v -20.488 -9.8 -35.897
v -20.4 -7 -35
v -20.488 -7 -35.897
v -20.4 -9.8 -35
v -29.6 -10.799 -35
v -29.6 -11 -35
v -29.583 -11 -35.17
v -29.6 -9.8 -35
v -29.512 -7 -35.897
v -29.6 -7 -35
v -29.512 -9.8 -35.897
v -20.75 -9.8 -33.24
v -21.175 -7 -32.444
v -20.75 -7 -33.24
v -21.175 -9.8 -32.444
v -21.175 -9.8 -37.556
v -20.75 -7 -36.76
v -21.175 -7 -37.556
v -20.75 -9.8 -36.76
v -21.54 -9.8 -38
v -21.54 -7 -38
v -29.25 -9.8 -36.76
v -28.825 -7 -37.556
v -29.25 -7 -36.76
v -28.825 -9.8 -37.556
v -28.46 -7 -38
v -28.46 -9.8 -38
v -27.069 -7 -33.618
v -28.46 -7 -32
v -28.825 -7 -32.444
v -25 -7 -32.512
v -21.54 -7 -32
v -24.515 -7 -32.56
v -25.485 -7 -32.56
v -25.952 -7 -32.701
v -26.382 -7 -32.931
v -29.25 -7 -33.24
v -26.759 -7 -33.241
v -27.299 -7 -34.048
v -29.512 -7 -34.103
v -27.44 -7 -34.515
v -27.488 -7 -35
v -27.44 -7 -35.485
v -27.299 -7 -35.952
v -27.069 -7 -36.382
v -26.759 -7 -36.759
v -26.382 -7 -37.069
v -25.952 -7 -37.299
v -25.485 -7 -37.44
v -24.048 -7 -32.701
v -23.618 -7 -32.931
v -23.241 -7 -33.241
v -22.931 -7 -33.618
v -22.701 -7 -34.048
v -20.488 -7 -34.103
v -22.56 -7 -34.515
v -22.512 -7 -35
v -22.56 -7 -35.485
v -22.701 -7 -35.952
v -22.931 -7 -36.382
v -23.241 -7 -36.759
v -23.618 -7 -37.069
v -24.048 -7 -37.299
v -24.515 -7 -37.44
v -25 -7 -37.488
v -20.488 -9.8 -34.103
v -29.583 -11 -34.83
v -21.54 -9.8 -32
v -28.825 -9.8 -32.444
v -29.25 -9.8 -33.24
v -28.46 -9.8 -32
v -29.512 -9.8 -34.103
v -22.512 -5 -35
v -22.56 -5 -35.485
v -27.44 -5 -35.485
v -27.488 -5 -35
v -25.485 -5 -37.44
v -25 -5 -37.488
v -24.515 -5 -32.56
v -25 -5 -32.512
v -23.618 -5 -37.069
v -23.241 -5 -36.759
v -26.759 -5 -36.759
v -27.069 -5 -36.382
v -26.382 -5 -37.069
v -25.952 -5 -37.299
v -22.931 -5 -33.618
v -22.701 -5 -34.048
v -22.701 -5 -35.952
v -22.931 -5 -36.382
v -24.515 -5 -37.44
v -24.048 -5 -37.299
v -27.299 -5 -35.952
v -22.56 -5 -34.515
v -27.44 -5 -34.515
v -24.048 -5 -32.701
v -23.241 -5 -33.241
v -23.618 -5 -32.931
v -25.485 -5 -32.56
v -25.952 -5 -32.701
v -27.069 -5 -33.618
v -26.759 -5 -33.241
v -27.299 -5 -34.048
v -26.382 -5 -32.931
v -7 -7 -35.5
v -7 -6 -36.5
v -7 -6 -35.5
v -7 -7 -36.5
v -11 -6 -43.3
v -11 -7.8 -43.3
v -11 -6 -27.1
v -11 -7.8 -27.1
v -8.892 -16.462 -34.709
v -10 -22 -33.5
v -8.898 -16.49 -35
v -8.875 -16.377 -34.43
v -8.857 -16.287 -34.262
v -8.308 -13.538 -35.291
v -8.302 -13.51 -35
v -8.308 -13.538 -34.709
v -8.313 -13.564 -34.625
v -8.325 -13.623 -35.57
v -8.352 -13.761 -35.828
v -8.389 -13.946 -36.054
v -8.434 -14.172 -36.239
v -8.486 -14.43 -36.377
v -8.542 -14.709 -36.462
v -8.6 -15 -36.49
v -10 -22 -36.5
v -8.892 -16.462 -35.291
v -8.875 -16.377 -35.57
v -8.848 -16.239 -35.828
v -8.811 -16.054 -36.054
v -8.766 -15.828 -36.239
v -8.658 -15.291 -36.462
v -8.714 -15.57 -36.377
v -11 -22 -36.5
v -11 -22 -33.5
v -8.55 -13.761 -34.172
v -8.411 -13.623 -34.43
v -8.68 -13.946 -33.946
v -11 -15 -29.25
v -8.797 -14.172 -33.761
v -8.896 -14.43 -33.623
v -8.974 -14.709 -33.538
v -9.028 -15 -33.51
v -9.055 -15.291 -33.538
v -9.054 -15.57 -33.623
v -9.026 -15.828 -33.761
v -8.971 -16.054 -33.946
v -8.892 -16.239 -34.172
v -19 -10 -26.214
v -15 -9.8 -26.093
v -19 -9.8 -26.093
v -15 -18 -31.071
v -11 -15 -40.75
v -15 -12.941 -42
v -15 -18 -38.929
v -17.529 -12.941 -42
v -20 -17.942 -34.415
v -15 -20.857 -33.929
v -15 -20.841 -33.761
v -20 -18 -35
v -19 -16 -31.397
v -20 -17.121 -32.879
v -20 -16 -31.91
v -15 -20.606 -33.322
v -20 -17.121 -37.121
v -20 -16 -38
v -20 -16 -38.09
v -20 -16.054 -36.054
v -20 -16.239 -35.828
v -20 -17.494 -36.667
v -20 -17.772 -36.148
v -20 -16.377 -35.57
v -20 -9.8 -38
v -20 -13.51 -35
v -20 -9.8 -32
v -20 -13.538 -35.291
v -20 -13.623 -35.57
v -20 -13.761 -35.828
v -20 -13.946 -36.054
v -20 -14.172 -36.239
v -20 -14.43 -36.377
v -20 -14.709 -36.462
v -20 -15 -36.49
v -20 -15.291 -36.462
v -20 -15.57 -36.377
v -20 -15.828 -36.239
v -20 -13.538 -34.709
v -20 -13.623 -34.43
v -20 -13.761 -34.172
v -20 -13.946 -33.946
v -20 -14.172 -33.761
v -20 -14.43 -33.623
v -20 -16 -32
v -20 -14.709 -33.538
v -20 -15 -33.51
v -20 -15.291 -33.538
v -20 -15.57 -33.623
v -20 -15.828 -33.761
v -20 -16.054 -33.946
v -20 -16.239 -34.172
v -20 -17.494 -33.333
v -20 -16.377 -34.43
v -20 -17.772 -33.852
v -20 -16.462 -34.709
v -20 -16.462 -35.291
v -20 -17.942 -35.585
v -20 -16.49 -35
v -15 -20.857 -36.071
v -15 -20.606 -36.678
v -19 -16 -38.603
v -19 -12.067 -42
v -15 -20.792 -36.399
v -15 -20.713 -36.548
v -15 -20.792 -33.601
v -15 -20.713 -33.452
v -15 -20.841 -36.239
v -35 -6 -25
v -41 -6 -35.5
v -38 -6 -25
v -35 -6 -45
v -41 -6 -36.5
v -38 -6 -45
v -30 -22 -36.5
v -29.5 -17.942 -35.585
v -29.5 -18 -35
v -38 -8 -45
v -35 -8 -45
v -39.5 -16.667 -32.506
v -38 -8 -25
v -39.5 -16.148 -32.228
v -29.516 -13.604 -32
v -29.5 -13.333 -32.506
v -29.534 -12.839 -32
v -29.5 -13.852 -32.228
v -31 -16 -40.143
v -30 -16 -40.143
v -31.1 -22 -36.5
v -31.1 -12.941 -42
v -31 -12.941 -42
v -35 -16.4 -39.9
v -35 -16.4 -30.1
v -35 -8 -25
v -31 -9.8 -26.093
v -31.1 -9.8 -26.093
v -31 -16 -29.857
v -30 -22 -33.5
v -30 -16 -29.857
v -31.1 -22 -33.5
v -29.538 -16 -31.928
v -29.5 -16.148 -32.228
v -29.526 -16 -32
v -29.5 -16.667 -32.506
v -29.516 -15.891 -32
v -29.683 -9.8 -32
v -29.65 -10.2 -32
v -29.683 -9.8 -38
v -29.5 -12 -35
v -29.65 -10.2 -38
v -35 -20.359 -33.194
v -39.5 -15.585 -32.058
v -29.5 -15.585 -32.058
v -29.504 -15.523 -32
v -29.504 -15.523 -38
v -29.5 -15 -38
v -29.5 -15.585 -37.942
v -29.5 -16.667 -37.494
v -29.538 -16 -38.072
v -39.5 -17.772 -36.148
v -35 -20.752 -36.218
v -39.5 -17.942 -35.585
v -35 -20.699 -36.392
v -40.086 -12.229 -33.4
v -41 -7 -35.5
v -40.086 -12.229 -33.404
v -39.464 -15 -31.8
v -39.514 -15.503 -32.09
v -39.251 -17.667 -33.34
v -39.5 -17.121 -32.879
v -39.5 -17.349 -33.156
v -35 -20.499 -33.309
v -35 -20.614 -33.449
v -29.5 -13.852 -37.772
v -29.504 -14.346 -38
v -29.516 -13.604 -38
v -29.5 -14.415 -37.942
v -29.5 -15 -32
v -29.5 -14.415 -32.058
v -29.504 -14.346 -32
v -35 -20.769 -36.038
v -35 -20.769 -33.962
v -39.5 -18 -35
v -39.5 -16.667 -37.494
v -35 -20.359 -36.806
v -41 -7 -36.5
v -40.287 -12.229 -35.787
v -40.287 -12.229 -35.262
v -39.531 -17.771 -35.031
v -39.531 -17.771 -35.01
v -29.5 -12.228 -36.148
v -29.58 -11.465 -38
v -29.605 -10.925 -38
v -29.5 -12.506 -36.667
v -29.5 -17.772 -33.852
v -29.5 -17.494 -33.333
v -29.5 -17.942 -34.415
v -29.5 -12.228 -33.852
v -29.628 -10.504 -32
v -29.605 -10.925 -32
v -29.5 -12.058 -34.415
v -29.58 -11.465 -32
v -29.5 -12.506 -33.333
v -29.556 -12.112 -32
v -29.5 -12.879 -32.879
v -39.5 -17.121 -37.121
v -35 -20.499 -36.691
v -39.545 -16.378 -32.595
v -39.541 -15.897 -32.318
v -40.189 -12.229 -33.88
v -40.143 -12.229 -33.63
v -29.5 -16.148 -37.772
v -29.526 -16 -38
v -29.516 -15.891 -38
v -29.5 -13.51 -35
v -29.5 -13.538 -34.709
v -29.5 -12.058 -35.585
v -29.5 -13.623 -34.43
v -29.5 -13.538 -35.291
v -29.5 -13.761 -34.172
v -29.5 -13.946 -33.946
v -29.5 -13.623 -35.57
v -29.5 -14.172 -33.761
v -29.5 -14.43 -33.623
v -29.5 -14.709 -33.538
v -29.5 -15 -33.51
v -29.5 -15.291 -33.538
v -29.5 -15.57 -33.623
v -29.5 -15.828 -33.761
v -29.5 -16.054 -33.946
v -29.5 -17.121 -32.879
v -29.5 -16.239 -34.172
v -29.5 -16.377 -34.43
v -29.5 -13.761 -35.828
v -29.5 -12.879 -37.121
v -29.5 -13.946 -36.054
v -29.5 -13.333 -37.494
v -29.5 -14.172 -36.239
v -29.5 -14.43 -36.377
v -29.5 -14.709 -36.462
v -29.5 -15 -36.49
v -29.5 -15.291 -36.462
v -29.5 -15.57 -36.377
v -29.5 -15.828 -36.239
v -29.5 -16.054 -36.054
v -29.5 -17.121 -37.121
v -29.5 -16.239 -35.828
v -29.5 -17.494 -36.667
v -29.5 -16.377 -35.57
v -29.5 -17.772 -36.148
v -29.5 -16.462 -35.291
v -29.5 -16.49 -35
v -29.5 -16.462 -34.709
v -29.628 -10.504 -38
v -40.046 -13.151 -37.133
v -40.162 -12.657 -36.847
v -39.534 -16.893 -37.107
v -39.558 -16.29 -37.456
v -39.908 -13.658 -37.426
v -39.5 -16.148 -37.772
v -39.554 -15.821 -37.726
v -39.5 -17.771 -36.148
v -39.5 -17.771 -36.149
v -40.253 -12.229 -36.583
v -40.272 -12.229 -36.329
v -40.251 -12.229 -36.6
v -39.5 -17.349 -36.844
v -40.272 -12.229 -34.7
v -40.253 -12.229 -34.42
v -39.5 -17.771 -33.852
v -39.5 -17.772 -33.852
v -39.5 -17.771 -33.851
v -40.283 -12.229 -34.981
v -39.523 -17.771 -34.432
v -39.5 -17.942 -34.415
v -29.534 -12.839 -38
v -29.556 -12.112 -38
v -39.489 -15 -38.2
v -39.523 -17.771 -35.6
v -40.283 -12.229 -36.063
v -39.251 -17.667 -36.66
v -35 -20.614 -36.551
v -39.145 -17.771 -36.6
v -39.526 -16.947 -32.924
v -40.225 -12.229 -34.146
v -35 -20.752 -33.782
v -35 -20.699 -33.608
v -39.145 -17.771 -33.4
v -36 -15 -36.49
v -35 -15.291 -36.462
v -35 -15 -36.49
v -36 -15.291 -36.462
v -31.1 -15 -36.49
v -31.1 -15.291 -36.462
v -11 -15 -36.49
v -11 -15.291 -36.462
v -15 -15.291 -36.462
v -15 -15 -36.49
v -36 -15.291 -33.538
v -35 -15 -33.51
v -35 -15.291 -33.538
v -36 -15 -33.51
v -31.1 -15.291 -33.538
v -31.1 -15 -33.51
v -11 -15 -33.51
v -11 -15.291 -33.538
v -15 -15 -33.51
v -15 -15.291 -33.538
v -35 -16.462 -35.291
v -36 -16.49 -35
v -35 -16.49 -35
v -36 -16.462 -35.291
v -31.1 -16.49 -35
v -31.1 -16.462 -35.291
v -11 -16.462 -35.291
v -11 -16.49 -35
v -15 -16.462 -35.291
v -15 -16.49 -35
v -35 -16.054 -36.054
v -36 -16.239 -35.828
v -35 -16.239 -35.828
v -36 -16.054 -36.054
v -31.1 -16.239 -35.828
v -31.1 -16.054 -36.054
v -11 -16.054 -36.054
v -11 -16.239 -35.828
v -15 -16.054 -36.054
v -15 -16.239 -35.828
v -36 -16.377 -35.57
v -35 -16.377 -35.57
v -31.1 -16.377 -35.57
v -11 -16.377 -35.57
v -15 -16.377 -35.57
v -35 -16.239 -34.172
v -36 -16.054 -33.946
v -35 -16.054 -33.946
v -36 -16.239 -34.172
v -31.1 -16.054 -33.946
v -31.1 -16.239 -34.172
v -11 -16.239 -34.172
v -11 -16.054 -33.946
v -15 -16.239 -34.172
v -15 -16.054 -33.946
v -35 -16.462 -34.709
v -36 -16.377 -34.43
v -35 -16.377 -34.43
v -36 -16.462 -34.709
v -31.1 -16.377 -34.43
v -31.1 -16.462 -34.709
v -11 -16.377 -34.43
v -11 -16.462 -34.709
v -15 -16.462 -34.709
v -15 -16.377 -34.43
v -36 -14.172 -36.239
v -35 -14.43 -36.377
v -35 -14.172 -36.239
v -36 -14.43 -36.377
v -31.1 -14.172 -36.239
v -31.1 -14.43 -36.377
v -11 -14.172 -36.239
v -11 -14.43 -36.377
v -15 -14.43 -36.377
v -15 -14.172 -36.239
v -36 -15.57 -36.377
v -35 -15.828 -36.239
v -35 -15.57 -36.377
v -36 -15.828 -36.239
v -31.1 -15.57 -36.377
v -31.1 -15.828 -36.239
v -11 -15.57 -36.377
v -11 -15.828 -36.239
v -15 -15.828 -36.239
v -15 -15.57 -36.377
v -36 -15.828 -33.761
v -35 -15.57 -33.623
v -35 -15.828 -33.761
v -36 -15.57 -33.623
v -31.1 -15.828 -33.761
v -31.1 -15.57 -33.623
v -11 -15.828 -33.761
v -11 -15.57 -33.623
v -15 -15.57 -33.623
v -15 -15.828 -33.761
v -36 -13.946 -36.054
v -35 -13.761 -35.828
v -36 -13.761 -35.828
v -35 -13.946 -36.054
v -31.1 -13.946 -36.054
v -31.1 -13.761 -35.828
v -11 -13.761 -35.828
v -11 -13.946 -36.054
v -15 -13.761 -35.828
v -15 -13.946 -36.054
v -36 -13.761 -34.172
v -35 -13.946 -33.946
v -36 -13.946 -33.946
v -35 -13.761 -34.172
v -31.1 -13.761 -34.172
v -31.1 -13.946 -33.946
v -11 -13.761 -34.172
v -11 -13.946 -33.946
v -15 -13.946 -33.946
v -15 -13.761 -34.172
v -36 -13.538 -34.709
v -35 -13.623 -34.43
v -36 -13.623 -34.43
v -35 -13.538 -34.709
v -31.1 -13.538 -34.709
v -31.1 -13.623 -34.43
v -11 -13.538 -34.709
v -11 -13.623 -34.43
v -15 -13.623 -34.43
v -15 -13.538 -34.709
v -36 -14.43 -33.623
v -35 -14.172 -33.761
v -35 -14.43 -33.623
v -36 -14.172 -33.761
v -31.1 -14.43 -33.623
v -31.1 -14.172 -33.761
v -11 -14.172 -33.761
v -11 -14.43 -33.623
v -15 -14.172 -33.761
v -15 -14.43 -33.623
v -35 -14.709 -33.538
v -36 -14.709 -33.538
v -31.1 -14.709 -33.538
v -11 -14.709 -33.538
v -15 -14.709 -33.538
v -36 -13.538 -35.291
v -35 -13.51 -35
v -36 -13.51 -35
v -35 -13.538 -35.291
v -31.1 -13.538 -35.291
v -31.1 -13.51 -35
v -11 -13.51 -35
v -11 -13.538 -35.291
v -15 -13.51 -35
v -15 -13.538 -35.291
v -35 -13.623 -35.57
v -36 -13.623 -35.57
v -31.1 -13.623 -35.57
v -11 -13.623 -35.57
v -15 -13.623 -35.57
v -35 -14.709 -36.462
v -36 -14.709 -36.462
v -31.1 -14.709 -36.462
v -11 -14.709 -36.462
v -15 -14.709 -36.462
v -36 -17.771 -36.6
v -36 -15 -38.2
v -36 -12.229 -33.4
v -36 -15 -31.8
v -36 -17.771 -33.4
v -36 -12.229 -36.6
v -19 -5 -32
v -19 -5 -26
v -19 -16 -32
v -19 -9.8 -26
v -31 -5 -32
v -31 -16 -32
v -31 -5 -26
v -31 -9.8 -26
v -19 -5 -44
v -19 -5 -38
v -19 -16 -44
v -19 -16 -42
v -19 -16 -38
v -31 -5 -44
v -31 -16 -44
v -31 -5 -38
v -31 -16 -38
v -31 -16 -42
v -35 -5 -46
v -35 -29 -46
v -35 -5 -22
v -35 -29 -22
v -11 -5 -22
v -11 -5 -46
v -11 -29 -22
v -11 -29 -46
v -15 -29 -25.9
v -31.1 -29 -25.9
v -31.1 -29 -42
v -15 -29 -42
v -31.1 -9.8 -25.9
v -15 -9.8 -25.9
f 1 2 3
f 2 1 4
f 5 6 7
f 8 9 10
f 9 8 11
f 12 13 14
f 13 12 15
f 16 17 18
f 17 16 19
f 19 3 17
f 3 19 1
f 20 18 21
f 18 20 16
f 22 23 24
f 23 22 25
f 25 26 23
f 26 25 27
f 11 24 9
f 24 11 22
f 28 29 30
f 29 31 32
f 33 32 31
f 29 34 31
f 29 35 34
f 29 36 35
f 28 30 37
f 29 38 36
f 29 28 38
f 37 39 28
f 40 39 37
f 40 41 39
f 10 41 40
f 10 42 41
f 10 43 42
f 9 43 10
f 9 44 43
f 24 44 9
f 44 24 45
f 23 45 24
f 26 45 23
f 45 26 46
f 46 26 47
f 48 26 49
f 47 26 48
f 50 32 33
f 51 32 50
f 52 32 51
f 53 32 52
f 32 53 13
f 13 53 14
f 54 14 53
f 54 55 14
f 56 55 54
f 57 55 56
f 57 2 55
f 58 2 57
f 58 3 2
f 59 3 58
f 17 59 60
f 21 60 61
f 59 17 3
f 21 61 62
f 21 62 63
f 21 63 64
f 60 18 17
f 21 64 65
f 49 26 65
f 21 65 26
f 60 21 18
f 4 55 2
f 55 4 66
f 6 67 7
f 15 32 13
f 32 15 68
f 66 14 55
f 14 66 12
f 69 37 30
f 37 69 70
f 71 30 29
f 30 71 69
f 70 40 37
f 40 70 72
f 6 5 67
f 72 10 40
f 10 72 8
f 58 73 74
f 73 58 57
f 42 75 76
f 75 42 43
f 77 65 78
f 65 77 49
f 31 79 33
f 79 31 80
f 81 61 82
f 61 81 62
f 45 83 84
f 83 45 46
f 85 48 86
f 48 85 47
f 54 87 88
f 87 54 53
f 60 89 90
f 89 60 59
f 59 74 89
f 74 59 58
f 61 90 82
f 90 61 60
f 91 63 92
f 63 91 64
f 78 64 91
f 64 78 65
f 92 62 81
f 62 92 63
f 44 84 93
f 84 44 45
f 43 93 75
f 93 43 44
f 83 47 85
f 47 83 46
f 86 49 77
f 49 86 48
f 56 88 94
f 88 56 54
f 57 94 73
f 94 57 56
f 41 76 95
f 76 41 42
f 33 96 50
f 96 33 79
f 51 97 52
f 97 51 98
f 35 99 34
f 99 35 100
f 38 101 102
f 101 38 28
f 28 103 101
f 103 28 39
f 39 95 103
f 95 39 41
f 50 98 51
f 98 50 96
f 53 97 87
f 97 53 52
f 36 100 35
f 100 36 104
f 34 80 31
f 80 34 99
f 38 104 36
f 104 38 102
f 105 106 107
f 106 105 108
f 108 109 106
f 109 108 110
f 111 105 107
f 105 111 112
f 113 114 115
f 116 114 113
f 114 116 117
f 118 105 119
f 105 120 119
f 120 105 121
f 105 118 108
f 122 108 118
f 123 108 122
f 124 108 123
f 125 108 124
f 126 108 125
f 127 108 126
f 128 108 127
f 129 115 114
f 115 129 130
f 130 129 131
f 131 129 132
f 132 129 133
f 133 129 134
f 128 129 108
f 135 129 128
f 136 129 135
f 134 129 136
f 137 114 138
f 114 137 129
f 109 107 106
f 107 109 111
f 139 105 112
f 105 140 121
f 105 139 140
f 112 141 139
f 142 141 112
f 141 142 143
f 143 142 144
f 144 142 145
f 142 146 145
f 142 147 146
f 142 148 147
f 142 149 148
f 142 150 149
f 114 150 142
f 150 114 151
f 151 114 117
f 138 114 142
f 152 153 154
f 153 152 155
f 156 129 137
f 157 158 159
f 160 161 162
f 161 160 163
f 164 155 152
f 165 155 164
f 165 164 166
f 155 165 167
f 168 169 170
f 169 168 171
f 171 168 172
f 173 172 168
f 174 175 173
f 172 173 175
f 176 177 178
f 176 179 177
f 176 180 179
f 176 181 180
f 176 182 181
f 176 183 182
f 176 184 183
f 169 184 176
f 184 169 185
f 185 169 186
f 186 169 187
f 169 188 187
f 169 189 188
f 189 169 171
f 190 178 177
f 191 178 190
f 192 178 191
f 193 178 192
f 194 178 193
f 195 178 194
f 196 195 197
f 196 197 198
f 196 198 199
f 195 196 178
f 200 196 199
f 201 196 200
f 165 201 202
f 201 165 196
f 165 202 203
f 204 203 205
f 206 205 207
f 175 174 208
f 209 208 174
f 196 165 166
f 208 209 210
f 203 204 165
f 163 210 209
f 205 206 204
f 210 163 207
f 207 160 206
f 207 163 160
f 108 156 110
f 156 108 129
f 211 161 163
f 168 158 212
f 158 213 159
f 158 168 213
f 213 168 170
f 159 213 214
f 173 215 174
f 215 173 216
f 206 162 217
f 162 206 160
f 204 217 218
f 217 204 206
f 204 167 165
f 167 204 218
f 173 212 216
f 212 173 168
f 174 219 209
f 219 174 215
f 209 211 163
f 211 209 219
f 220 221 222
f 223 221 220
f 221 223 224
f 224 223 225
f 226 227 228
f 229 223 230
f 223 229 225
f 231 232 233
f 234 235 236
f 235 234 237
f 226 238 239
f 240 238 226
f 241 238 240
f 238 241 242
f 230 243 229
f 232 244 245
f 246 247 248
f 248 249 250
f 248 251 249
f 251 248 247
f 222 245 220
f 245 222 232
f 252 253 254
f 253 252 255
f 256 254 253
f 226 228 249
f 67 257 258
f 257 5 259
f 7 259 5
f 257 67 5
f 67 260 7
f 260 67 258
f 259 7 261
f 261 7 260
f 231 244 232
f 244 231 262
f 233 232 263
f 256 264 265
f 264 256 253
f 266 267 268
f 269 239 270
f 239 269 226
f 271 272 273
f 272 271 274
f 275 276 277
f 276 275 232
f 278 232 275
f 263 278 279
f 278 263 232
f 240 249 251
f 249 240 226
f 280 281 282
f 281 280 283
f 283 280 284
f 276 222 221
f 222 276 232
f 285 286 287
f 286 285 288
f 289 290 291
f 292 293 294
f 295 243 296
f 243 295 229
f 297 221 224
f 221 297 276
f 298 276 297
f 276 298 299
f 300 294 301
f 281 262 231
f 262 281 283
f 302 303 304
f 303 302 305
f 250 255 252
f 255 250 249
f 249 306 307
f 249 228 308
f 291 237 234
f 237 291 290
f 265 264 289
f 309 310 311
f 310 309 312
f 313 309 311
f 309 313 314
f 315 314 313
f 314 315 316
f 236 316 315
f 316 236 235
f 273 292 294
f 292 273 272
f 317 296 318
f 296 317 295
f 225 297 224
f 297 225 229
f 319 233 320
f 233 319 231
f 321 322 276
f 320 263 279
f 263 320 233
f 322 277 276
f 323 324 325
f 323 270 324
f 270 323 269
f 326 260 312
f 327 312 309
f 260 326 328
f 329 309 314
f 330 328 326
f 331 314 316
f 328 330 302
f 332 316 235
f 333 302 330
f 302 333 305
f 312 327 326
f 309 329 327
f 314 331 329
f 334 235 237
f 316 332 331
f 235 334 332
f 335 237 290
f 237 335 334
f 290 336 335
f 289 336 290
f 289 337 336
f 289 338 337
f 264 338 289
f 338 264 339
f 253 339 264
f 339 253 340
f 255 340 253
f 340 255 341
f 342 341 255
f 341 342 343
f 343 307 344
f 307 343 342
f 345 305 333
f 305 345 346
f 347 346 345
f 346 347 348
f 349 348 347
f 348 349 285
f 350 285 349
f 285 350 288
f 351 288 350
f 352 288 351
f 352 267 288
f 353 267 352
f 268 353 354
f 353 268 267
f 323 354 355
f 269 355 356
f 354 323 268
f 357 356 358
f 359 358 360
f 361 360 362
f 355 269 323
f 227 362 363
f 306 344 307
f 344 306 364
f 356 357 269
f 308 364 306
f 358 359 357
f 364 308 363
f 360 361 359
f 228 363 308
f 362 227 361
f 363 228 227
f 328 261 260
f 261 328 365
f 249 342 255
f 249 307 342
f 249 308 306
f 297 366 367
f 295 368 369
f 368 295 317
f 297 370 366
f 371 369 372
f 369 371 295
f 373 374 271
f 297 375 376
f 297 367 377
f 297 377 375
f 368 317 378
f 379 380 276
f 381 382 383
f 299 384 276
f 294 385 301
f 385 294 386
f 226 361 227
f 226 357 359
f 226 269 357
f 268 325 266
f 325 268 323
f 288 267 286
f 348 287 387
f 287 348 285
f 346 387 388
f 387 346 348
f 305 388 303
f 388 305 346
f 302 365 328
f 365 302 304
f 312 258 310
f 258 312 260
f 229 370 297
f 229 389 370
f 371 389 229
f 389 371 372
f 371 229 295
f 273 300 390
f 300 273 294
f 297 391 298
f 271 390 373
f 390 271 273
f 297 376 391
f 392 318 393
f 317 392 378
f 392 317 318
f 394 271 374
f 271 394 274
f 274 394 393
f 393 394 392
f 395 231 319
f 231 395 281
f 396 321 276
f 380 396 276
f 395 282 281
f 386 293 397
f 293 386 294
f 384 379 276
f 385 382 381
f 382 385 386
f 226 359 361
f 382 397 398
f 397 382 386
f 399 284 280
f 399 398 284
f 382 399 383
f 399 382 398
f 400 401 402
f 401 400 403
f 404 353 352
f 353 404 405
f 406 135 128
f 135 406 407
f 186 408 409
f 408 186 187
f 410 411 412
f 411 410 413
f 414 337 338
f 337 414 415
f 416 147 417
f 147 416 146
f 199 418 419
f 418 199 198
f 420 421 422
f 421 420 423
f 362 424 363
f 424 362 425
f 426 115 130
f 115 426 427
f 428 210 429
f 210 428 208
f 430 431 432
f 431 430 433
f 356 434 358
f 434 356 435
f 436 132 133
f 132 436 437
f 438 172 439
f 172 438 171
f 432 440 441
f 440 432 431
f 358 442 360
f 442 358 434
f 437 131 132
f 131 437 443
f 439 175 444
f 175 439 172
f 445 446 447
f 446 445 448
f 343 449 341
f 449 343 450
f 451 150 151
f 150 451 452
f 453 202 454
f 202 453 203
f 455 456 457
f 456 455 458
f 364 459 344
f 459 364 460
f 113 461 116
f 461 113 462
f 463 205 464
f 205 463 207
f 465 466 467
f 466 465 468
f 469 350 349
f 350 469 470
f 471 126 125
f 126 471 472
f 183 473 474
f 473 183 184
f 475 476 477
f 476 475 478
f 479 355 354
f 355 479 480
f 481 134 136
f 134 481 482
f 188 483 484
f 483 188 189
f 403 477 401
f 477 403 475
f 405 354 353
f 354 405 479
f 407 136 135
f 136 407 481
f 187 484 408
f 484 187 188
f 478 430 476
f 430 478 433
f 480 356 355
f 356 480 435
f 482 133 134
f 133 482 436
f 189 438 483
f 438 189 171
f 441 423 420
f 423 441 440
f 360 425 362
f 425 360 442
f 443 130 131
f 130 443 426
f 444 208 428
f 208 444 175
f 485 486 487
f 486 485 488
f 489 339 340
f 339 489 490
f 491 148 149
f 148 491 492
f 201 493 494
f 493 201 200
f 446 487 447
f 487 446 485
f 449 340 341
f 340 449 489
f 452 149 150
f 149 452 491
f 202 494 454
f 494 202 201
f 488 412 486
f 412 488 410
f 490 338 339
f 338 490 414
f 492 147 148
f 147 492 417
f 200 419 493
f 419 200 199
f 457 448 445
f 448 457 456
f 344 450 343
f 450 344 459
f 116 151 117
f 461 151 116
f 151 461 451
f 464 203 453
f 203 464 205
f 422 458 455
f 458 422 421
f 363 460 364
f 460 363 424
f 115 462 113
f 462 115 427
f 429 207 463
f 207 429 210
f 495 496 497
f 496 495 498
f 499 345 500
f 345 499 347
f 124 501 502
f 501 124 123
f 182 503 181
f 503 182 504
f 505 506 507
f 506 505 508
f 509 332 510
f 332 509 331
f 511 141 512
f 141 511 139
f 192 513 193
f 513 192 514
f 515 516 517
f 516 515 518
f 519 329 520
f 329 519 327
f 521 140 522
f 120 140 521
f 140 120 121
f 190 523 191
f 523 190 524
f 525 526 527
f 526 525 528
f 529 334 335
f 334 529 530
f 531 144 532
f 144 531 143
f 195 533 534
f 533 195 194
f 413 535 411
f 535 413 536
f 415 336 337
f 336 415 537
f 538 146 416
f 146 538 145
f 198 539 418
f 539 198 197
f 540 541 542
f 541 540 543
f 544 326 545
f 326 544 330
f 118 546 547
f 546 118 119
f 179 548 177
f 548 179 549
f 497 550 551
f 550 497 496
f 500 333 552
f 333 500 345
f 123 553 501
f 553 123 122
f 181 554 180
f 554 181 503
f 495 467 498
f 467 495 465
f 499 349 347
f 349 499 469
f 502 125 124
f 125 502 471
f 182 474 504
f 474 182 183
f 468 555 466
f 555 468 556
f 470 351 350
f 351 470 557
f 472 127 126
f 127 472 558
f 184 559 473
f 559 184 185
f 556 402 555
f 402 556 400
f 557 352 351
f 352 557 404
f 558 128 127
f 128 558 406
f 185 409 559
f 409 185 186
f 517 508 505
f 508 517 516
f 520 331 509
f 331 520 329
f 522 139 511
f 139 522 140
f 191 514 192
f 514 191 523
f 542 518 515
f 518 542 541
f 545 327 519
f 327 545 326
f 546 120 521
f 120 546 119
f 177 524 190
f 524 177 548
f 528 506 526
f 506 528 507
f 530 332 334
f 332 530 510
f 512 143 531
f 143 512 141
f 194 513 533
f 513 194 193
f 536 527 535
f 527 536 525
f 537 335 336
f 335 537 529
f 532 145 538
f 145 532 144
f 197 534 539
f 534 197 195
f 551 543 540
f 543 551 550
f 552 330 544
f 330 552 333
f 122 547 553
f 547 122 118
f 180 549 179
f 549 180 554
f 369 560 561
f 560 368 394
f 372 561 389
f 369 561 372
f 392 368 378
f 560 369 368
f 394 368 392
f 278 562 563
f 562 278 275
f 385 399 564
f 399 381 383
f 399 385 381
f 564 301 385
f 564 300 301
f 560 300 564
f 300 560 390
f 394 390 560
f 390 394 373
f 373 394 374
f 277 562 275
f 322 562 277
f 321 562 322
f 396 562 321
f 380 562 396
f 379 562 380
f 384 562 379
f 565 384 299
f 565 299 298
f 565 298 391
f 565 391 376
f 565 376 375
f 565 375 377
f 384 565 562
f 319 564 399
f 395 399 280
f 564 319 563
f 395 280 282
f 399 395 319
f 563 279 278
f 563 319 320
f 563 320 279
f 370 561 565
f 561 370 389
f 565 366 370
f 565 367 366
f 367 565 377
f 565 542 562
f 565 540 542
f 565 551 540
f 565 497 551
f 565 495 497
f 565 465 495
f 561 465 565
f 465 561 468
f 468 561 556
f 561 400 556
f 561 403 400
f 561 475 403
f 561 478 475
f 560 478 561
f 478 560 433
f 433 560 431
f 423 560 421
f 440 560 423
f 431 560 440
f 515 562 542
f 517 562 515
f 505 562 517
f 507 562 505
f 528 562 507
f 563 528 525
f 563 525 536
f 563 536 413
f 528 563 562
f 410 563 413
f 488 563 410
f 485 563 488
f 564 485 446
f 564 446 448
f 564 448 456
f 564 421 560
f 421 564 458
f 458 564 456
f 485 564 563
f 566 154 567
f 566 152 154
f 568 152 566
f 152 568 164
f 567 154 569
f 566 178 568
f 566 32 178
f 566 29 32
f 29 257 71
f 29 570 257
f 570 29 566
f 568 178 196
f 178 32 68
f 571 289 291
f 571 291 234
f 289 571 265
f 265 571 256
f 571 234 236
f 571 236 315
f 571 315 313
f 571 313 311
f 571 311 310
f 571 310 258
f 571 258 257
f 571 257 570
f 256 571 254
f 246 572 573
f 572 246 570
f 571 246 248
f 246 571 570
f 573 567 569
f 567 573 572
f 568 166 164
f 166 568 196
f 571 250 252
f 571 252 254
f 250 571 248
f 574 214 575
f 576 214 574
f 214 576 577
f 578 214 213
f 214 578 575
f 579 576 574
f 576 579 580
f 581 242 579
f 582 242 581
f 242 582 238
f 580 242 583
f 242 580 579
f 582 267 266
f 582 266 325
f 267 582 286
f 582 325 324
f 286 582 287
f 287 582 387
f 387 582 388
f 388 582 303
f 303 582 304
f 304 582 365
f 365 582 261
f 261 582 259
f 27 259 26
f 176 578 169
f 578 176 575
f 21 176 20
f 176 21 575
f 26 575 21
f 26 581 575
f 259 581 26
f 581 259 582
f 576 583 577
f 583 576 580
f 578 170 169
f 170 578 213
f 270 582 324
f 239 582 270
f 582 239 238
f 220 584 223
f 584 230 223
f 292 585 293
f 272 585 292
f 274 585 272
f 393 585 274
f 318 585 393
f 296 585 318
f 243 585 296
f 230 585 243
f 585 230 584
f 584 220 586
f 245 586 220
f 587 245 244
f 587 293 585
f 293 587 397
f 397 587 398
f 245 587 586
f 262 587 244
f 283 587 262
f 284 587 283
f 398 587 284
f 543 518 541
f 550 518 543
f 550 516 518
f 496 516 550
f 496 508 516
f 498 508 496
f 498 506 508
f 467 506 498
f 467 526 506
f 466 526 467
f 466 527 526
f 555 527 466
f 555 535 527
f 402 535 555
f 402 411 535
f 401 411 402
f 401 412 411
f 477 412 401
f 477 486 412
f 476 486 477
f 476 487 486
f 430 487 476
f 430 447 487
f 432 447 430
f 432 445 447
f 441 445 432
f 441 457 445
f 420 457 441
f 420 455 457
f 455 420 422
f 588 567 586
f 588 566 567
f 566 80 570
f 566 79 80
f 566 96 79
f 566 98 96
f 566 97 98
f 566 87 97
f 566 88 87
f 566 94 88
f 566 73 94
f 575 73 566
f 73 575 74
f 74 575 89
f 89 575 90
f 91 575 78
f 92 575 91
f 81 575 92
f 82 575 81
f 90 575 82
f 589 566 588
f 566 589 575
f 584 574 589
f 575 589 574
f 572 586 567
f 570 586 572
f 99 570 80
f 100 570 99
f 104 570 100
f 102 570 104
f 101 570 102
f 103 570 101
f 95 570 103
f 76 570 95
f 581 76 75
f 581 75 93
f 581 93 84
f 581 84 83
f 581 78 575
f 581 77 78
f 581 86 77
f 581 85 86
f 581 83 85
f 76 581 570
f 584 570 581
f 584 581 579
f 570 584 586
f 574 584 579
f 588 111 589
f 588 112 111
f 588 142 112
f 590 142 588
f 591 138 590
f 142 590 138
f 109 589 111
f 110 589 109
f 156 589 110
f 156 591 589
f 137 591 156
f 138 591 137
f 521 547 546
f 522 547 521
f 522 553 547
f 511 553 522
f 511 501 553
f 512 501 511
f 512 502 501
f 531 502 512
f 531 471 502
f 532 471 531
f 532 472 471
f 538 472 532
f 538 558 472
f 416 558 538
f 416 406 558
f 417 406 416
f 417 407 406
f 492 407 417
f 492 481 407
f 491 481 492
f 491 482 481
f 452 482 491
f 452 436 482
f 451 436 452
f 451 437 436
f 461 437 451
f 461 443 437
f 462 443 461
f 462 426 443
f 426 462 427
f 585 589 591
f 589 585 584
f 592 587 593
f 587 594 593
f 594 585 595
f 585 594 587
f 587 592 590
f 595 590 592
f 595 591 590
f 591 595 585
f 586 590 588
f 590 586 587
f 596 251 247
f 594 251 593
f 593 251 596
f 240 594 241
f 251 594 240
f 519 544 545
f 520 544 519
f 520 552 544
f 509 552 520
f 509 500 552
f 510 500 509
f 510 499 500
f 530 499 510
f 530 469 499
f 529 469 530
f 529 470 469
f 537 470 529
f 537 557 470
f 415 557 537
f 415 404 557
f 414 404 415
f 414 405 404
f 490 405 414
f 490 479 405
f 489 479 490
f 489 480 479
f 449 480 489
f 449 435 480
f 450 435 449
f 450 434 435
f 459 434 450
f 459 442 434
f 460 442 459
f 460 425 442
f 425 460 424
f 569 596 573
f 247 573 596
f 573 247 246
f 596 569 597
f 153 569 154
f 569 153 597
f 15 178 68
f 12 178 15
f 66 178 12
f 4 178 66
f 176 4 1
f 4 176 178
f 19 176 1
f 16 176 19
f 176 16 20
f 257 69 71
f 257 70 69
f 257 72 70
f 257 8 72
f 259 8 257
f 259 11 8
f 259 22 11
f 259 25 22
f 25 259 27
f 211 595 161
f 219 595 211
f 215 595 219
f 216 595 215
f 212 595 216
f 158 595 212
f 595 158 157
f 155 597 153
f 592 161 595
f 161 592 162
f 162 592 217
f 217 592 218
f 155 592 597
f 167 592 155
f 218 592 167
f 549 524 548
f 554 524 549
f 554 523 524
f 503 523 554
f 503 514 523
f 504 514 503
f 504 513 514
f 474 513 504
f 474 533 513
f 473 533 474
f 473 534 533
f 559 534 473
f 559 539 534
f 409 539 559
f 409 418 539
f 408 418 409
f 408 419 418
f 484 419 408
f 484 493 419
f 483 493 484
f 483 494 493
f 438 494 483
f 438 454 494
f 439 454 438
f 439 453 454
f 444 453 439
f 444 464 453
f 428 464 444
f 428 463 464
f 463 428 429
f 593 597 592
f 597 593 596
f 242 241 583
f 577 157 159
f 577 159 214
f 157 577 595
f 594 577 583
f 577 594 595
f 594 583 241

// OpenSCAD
// file: triangle.scad
//Copyright Austin Floyd 2013
//http://www.thingiverse.com/thing:119050
//license GNU GPL
//austin.floyd at 3DprintGeeks (dot) com

//global variables.. if not set when calling wedge it will use these values. 
//The prefix st_ is to "namespace" the global variables so they're not accidentally overridden elsewhere


//The top angle of the right triangle
st_wedgeAngle=12; // [0.01:89.99]

//The height of the triangle (width auto-generated based on this)
st_wedgeHeight=27; // [0.01:200]

//Depth (thickness) of triangle
st_wedgeWidth=2.2; // [0.01:200]

//Increased or decreased percentage (50% would be 0.5) of top point vs bottom point
st_topFactor=0.5; // [0,0.1,0.2,0.3,0.4,0.5,0.6,0.7,0.8,0.9,1]

//Whether or not to center on x/y/z
st_center=false; // [true, false]

//Flip it upside down
st_invert=false; // [true, false]

//default wedge
//wedge();

//demo of several different wedges
demo();

module demo() {
	translate([0,0,15])
	wedge(angle=75,height=10, wedgeWidth=5);

	wedge(angle=75,height=5,topFactor=.25, center=true, wedgeWidth=10);

	translate([0,0,-15])
	wedge(angle=35,height=13,center=true);

	translate([0,0,-30])
	wedge(angle=35,height=6, center=true, invert=true);
}


module wedge(angle=st_wedgeAngle, height=st_wedgeHeight, wedgeWidth=st_wedgeWidth, topFactor=st_topFactor, center=st_center, invert=st_invert) {
	angle2=180-90-angle;
	hyp=height/sin(angle2);
	width=sqrt(pow(hyp,2)-pow(height,2));
	if (!invert) {
		triangle(height, width, center, topFactor, wedgeWidth);
	}
	if (invert) {
		rotate(180,[1,0,0])
		triangle(height, width, center, topFactor, wedgeWidth);
	}
}
module triangle(height=5, width=5, center=false, topFactor=0.5, wedgeWidth) {
	triangles=[[0,1,4],[5,4,1],		// top
					[1,2,5],[2,3,4],		// sides
					[3,0,4], [4,5,2],	//back
           	[2,1,0], [2,0,3]]; // base
	halfWidth=width/2;
	halfWWidth=wedgeWidth/2;
	topWidth=wedgeWidth*topFactor;
	halfTopWidth=topWidth/2;
	topHalfDiff=(wedgeWidth-topWidth)/2;
	halfHeight=height/2;
	if (center) {
		polyhedron(
  			points=[/*0*/[halfWidth,halfWWidth,-halfHeight],/*1*/[halfWidth,-halfWWidth,-halfHeight],				//front point
					  /*2*/[-halfWidth,-halfWWidth,-halfHeight],       /*3*/[-halfWidth,halfWWidth,-halfHeight], //rear point
           	  /*4*/[-halfWidth,halfTopWidth,height-halfHeight], /*5*/[-halfWidth,-halfTopWidth,height-halfHeight] ], //front/rear top 
  			triangles=triangles
		);
	}
	else {
		polyhedron(
  			points=[/*0*/[width,wedgeWidth,0],         			 /*1*/[width,0,0],				    ////front point
					  /*2*/[0,0,0],       					  			 /*3*/[0,wedgeWidth,0], 		    //rear point
           	  /*4*/[0,wedgeWidth-topHalfDiff,height],/*5*/[0,topHalfDiff,height] ],//front/back top 
  			triangles=triangles
		);
	}
}
// file: pulley.scad
use <MCAD/nuts_and_bolts.scad>;

module pulley_wall(xside)
{
    hull(){
       translate([0,0,0]) cube([20,8,2]);
       
       if (xside==0){
          translate([8.5,0,14]) cube([3,3,2]);
          translate([8.5,10,0]) cube([1,1,1]);
          translate([10,9.5,9]) rotate([90,0,0]) cylinder(r=3,h=10);
          
         } else {
          translate([8.5,-2,14]) cube([3,3,2]);
          translate([8.5,-5,0]) cube([1,1,1]);
          translate([10,8,9]) rotate([90,0,0]) cylinder(r=3,h=10);
         }
       }
    
}

module pulley_body()
{
    translate([0,4,0])   pulley_wall(1);
    translate([0,22,0])  pulley_wall(0);
    %translate([10,2.2,9]) rotate([90,0,180]) boltHole(3,length=45);
    %translate([10,27,9]) rotate([90,0,180]) nutHole(3); 
}

module pulley_cuts()
{
    translate([10,-2,9]) rotate([90,0,180]) boltHole(3,length=45);
    translate([10,28,9]) rotate([90,0,180]) nutHole(3);  
    translate([10,30,9]) rotate([90,0,180]) nutHole(3); 
}

module pulley()
{
	difference(){
        translate([23,21,-12]) rotate([90,0,270]) pulley_body();
        translate([23,21,-12]) rotate([90,0,270]) pulley_cuts();
        }
    

}



pulley();
// file: sensor.scad
module sensor_mount_body()
{
 union() { 
      translate([0,0,0]) rotate([90,0,0]) cube([50,15,2]); 
      translate([0,18,0]) rotate([90,0,0]) cube([50,15,2]);
      
      translate([50,-2,0]) rotate([90,0,90]) cube([20,15,2]);
      translate([0,-2,0]) rotate([90,0,90]) cube([20,15,2]);
      
      
      }
}

module sensor_mount_cuts()
{

      translate([50,7.5,7.5]) rotate([90, 0, 90]) cylinder(r=2.5, h=5, center=true, $fn=12);

}

module sensor_mount()
{
   difference() {
    sensor_mount_body();
    sensor_mount_cuts();
    
     
     }
}

sensor_mount();
// file: nemamount.scad
include <MCAD/units.scad>;
include <MCAD/materials.scad>
include <MCAD/stepper.scad>
include <MCAD/motors.scad>
use <MCAD/shapes.scad>;
use <pulley.scad>;
$fn = 32;




module motor_support(ht)
{
   difference(){
	  translate([-22.5,23.5,0]) rotate([90,0,0]) motor_support_body(ht);
      translate([0,1,0]) rotate([90,0,0]) motor_support_cuts(ht);
      }
}

module motor_support_body(ht)
{
	cube([45,ht,48.5]);

}


module motor_support_cuts(ht)
{
// Motor shaft/pulley cutout.
      translate([0,.1,0]) rotate([90, 0, 0]) cylinder(r=12, h=ht*2, center=true, $fn=60);
      // NEMA 17 stepper motor mounting screws.
      for (x = [-1, 1]) for (z = [-1, 1]) {
        scale([x, 1, z]) translate([15.5, .1, 15.5]) {
          rotate([90, 0, 0]) cylinder(r=4, h=ht*2, center=true, $fn=12);
          }
        }
}



module nema_geared_cutout()
{
    //pulley opening
    translate([16,1,21]) rotate([90,0,0]){
      cylinder (h=22, r=6.6);

      rotate([0,0,45]) {
        translate([14,0,0]) cylinder(h=22, r=1.6, $fn=12);
        translate([0,14,0]) cylinder(h=22, r=1.6, $fn=12);
        translate([-14,0,0]) cylinder(h=22, r=1.6, $fn=12);
        translate([0,-14,0]) cylinder(h=22, r=1.6, $fn=12);
      }
     
    }

    //gearhead indentation
    translate([16,-5,21]) rotate([90,0,0]) cylinder (h=3.35, r=11.25);

  
    
}

module nema_cutout()
{
// Motor shaft/pulley cutout.
      rotate([90, 0, 0]) cylinder(r=12, h=20, center=true, $fn=60);
      // NEMA 17 stepper motor mounting screws.
      for (x = [-1, 1]) for (z = [-1, 1]) {
        scale([x, 1, z]) translate([15.5, -5, 15.5]) {
          rotate([90, 0, 0]) cylinder(r=1.65, h=20, center=true, $fn=12);
          }
        }
}

module nema_motor()
{
   union(){
     nema_mount();
     %translate([0,-4,1]) rotate([90,0,0]) motor(Nema17, size=NemaLong , dualAxis=false);
     }
}

module nema_motor_inverse()
{
   union(){
     nema_mount_inverse();
     %translate([0,-4,1]) rotate([90,0,0]) motor(Nema17, size=NemaLong , dualAxis=false);
     }
}

module nema_geared_motor_inverse()
{
   union(){
     nema_geared_inverse();
     %translate([16,-7,22]) rotate([90,0,180]) motor(Nema17, NemaLong, dualAxis=false);
    
     }
}

module nema_geared_motor()
{
   union(){
     nema_geared_mount();
     %translate([16,-7,22]) rotate([90,0,180]) motor(Nema17, NemaLong, dualAxis=false);
    
     }
}

module nema_geared_mount()
{
   difference(){
      union(){
           translate([-6,-6,0]) rotate([90,0,0]) cube([45,45,7]);
           rotate([180,0,0]) translate([-6,6,-4]) cube([45,15,5]);
           rotate([180,0,0]) translate([-6,6,-44])  cube([45,15,5]);
           }
      translate([0,0,1]) nema_geared_cutout();
      }
}

module nema_geared_inverse()
{
   difference(){
      union(){
           translate([-6,-6,0]) rotate([90,0,0]) cube([45,45,7]);
           translate([-6,-31,-4]) rotate([0,0,0]) cube([45,25,5]);
           translate([-6,-31,44]) rotate([0,0,0]) cube([45,25,5]);
           }
      translate([0,0,1]) nema_geared_cutout();
      }


}

module nema_mount_inverse()
{
   difference(){
      union(){
        translate([-22.5,0,-21.5]) rotate([90,0,0]) cube([45,45,5]);
        translate([-22.5,-5,-25]) rotate([0,0,0]) cube([45,25,5]);
        }
      translate([0,0,1]) nema_cutout();
      }
   //nema_cutout();
}

module nema_mount()
{
   difference(){
      union(){
        translate([-22.5,0,-21.5]) rotate([90,0,0]) cube([45,45,5]);
        rotate([180,0,0]) translate([-22.5,-10,-28]) cube([45,15,5]);
        }
      translate([0,0,1]) nema_cutout();
      }
   //nema_cutout();
}

module pulley_mount()
{
      hull(){
        translate([-22.5,0,-21.5+3]) rotate([90,0,0]) cube([10,38,5]);
	translate([0,5,0]) rotate([90,0,0]) cylinder(r=18,h=5);
      }
	translate([-11.25,28,-3.9]) rotate([0,0,-90]) pulley();
          
}

//nema_motor();
//nema_motor_inverse();
//translate([0,0,40]) rotate([270,0,0]) pulley_mount();
//translate([0,0,0]) motor_support(40);
//nema_geared_motor();
//nema_geared_motor_inverse();
pulley_mount();
// file: vslot.scad
include <MCAD/units.scad>;
include <MCAD/materials.scad>
use <MCAD/shapes.scad>;
use <bom.scad>;

vslot_color_black = [0.27, 0.27, 0.3];
vslot_color = Aluminum;

module vslot(length=50, sections=1, finish, cutout=0) {
	size = sections * 20;
	bom(str("vslot20x", size, "x", length), str("v-slot 20x", size, " (", length , "mm)"), ["rail", "extrusion", "structure"]);
	cutext = [[12.00,4.50],[10.00,4.50],[8.20,2.78],[8.20,5.50],[6.56,5.50],[3.90,2.84],[3.90,0.21],[3.69,0.00],[3.90,-0.21],[3.90,-2.84],[6.56,-5.50],[8.20,-5.50],[8.20,-2.78],[10.00,-4.50],[12.00,-4.50]];
	cutint = [[16.10,0.21],[16.10,2.84],[12.70,6.24],[12.70,8.78],[7.30,8.78],[7.30,6.24],[3.90,2.84],[3.90,0.21],[3.69,0.00],[3.90,-0.21],[3.90,-2.84],[7.30,-6.24],[7.30,-8.78],[12.70,-8.78],[12.70,-6.24],[16.10,-2.84],[16.10,-0.21],[16.31,0.00],];
	cutcorner = [[8.20,8.20],[6.57,8.20],[6.57,7.66],[7.66,6.57],[8.20,6.57]];

	module profile() {
        
		difference() {
         
			translate([0,0,length/2])
			roundedBox(20 * sections, 20, length, 1.5);
         if (cutout == 0){
			for(i = [0,180]) rotate([0,0,-i]) translate([10 * (sections - 1), 0, -epsilon/2]) {
				linear_extrude(length+20) polygon(cutext);
				translate([5,-2.89,-20]) cube([10,5.78,length+40]);
			}
          
			for(i = [90,270]) rotate([0,0,-i])
				for(j = [0:sections-1]) translate([0, (sections - 1) * 10 - 20 * j, -epsilon/2]) {
					linear_extrude(length+epsilon) polygon(cutext);
					translate([5,-2.89,-20]) cube([10,5.78,length+40]);
				}

			for(i = [0:sections-1]) translate([i * 20 - 10 * (sections - 1),0,-epsilon/2])
				cylinder(length+20, 2.1, 2.1);

			for(i = [90,270]) rotate([0,0,-i])
				translate([0,(sections - 1) * 10,-epsilon/2])
				linear_extrude(length+epsilon) polygon(cutcorner);
			for(i = [ 0,180]) rotate([0,0,-i])
				translate([(sections - 1) * 10,0,-epsilon/2])
				linear_extrude(length+epsilon) polygon(cutcorner);

			if(sections > 1)
				for(i = [0:sections-2]) translate([(sections - 3) * 10 - i * 20, 0, -epsilon/2])
					linear_extrude(length+epsilon) polygon(cutint);
                      }
		}
	}

      if (cutout == 1){
		 translate([0,0,length/2]) box(20 * sections, 20.2, length);
          } else {
	     if(finish)
		   color(finish) profile();
	     else
		   color(vslot_color) profile();
         }
}

module vslot20x20(length, finish) { vslot(length, 1, finish); }
module vslot20x20_cutout(length, finish) { vslot(length, 1, finish, 1); }


module vslot20x40(length, finish) { vslot(length, 2, finish); }
module vslot20x40_cutout(length, finish) { vslot(length, 2, finish, 1); }

module vslot20x60(length, finish) { vslot(length, 3, finish); }
module vslot20x60_cutout(length, finish) { vslot(length, 3, finish, 1); }

module vslot20x80(length, finish) { vslot(length, 4, finish); }
module vslot20x80_cutout(length, finish) { vslot(length, 4, finish, 1); }


module vslot_test() {
	$fn = 32;

	vslot20x20(100);

	translate([0, 40, 0])
	vslot20x40(100, vslot_color_black);

	translate([0, 80, 0])
	vslot20x60(100);

	translate([0, 120, 0])
	vslot20x80(100, vslot_color_black);

    translate([0,140,0]) vslot20x20_cutout(100);
}

vslot_test();
// file: bom.scad
module bom(code, desc, category) {
	echo(str("BOM: ",code," - ", desc, "; ", category));
}
// main file
include <MCAD/units.scad>;
include <MCAD/materials.scad>
include <MCAD/boxes.scad>;
use <MCAD/shapes.scad>;
use <MCAD/nuts_and_bolts.scad>;
use <bom.scad>;
use <vslot.scad>;
use <nemamount.scad>;
use <sensor.scad>;
use <pulley.scad>;
use <triangle.scad>;

$fn = 32;

rod_length = 500;



module pulley_mounts()
{
      
    
    // % translate([24.2,-22.5,48]) rotate([270,0,90+180]) pulley_mount();
   translate([20,-29,24]) rotate([270,180,90+180]) pulley();  
  
	
	
	
}


module vslot_cuts()
{
   
   
   translate([25,-1-1,35]) rotate([0,90,90]) vslot20x20_cutout(110);
 	
	
	
}

module show_rods()
{  
   %translate([25,-1-5,35]) rotate([0,90,90]) vslot20x20(rod_length);
   //%translate([8,5,35]) rotate([0,90,0]) boltHole(5, length=12);
   //%translate([42,5,35]) rotate([0,270,0]) boltHole(5, length=12);


  
   

}

module empty_cube()
{
    difference(){
        translate([2,2,2]) cube([24,24,24]); 
        translate([5.9,5.9,1.1]) cube([16.1,16.1,20.1]);
        }
}

module mini_body()
{
	pulley_mounts();
        translate([37,-31,20]) rotate([90,0,180]) empty_cube();
        //translate([11.5-1.5-4,-10.5,20-2]) cube([38,30,35]); // X mount vslot
	
}

module mini_cuts()
{
	vslot_cuts();
        translate([19,-16,26]) cube([12,17,6]);
        translate([19,-16,38]) cube([12,17,6]);
	//translate([8,5,35]) rotate([0,90,0]) boltHole(5, length=14);
	//translate([42,5,35]) rotate([0,270,0]) boltHole(5, length=14);
        translate([25,-7,35]) rotate([270,180,0]) boltHole(5,length=40);
}

module mini_corner()
{   
   difference(){
	   mini_body();
           mini_cuts();
           }
   show_rods();
   
}

rotate([0,180,0]) mini_corner();
